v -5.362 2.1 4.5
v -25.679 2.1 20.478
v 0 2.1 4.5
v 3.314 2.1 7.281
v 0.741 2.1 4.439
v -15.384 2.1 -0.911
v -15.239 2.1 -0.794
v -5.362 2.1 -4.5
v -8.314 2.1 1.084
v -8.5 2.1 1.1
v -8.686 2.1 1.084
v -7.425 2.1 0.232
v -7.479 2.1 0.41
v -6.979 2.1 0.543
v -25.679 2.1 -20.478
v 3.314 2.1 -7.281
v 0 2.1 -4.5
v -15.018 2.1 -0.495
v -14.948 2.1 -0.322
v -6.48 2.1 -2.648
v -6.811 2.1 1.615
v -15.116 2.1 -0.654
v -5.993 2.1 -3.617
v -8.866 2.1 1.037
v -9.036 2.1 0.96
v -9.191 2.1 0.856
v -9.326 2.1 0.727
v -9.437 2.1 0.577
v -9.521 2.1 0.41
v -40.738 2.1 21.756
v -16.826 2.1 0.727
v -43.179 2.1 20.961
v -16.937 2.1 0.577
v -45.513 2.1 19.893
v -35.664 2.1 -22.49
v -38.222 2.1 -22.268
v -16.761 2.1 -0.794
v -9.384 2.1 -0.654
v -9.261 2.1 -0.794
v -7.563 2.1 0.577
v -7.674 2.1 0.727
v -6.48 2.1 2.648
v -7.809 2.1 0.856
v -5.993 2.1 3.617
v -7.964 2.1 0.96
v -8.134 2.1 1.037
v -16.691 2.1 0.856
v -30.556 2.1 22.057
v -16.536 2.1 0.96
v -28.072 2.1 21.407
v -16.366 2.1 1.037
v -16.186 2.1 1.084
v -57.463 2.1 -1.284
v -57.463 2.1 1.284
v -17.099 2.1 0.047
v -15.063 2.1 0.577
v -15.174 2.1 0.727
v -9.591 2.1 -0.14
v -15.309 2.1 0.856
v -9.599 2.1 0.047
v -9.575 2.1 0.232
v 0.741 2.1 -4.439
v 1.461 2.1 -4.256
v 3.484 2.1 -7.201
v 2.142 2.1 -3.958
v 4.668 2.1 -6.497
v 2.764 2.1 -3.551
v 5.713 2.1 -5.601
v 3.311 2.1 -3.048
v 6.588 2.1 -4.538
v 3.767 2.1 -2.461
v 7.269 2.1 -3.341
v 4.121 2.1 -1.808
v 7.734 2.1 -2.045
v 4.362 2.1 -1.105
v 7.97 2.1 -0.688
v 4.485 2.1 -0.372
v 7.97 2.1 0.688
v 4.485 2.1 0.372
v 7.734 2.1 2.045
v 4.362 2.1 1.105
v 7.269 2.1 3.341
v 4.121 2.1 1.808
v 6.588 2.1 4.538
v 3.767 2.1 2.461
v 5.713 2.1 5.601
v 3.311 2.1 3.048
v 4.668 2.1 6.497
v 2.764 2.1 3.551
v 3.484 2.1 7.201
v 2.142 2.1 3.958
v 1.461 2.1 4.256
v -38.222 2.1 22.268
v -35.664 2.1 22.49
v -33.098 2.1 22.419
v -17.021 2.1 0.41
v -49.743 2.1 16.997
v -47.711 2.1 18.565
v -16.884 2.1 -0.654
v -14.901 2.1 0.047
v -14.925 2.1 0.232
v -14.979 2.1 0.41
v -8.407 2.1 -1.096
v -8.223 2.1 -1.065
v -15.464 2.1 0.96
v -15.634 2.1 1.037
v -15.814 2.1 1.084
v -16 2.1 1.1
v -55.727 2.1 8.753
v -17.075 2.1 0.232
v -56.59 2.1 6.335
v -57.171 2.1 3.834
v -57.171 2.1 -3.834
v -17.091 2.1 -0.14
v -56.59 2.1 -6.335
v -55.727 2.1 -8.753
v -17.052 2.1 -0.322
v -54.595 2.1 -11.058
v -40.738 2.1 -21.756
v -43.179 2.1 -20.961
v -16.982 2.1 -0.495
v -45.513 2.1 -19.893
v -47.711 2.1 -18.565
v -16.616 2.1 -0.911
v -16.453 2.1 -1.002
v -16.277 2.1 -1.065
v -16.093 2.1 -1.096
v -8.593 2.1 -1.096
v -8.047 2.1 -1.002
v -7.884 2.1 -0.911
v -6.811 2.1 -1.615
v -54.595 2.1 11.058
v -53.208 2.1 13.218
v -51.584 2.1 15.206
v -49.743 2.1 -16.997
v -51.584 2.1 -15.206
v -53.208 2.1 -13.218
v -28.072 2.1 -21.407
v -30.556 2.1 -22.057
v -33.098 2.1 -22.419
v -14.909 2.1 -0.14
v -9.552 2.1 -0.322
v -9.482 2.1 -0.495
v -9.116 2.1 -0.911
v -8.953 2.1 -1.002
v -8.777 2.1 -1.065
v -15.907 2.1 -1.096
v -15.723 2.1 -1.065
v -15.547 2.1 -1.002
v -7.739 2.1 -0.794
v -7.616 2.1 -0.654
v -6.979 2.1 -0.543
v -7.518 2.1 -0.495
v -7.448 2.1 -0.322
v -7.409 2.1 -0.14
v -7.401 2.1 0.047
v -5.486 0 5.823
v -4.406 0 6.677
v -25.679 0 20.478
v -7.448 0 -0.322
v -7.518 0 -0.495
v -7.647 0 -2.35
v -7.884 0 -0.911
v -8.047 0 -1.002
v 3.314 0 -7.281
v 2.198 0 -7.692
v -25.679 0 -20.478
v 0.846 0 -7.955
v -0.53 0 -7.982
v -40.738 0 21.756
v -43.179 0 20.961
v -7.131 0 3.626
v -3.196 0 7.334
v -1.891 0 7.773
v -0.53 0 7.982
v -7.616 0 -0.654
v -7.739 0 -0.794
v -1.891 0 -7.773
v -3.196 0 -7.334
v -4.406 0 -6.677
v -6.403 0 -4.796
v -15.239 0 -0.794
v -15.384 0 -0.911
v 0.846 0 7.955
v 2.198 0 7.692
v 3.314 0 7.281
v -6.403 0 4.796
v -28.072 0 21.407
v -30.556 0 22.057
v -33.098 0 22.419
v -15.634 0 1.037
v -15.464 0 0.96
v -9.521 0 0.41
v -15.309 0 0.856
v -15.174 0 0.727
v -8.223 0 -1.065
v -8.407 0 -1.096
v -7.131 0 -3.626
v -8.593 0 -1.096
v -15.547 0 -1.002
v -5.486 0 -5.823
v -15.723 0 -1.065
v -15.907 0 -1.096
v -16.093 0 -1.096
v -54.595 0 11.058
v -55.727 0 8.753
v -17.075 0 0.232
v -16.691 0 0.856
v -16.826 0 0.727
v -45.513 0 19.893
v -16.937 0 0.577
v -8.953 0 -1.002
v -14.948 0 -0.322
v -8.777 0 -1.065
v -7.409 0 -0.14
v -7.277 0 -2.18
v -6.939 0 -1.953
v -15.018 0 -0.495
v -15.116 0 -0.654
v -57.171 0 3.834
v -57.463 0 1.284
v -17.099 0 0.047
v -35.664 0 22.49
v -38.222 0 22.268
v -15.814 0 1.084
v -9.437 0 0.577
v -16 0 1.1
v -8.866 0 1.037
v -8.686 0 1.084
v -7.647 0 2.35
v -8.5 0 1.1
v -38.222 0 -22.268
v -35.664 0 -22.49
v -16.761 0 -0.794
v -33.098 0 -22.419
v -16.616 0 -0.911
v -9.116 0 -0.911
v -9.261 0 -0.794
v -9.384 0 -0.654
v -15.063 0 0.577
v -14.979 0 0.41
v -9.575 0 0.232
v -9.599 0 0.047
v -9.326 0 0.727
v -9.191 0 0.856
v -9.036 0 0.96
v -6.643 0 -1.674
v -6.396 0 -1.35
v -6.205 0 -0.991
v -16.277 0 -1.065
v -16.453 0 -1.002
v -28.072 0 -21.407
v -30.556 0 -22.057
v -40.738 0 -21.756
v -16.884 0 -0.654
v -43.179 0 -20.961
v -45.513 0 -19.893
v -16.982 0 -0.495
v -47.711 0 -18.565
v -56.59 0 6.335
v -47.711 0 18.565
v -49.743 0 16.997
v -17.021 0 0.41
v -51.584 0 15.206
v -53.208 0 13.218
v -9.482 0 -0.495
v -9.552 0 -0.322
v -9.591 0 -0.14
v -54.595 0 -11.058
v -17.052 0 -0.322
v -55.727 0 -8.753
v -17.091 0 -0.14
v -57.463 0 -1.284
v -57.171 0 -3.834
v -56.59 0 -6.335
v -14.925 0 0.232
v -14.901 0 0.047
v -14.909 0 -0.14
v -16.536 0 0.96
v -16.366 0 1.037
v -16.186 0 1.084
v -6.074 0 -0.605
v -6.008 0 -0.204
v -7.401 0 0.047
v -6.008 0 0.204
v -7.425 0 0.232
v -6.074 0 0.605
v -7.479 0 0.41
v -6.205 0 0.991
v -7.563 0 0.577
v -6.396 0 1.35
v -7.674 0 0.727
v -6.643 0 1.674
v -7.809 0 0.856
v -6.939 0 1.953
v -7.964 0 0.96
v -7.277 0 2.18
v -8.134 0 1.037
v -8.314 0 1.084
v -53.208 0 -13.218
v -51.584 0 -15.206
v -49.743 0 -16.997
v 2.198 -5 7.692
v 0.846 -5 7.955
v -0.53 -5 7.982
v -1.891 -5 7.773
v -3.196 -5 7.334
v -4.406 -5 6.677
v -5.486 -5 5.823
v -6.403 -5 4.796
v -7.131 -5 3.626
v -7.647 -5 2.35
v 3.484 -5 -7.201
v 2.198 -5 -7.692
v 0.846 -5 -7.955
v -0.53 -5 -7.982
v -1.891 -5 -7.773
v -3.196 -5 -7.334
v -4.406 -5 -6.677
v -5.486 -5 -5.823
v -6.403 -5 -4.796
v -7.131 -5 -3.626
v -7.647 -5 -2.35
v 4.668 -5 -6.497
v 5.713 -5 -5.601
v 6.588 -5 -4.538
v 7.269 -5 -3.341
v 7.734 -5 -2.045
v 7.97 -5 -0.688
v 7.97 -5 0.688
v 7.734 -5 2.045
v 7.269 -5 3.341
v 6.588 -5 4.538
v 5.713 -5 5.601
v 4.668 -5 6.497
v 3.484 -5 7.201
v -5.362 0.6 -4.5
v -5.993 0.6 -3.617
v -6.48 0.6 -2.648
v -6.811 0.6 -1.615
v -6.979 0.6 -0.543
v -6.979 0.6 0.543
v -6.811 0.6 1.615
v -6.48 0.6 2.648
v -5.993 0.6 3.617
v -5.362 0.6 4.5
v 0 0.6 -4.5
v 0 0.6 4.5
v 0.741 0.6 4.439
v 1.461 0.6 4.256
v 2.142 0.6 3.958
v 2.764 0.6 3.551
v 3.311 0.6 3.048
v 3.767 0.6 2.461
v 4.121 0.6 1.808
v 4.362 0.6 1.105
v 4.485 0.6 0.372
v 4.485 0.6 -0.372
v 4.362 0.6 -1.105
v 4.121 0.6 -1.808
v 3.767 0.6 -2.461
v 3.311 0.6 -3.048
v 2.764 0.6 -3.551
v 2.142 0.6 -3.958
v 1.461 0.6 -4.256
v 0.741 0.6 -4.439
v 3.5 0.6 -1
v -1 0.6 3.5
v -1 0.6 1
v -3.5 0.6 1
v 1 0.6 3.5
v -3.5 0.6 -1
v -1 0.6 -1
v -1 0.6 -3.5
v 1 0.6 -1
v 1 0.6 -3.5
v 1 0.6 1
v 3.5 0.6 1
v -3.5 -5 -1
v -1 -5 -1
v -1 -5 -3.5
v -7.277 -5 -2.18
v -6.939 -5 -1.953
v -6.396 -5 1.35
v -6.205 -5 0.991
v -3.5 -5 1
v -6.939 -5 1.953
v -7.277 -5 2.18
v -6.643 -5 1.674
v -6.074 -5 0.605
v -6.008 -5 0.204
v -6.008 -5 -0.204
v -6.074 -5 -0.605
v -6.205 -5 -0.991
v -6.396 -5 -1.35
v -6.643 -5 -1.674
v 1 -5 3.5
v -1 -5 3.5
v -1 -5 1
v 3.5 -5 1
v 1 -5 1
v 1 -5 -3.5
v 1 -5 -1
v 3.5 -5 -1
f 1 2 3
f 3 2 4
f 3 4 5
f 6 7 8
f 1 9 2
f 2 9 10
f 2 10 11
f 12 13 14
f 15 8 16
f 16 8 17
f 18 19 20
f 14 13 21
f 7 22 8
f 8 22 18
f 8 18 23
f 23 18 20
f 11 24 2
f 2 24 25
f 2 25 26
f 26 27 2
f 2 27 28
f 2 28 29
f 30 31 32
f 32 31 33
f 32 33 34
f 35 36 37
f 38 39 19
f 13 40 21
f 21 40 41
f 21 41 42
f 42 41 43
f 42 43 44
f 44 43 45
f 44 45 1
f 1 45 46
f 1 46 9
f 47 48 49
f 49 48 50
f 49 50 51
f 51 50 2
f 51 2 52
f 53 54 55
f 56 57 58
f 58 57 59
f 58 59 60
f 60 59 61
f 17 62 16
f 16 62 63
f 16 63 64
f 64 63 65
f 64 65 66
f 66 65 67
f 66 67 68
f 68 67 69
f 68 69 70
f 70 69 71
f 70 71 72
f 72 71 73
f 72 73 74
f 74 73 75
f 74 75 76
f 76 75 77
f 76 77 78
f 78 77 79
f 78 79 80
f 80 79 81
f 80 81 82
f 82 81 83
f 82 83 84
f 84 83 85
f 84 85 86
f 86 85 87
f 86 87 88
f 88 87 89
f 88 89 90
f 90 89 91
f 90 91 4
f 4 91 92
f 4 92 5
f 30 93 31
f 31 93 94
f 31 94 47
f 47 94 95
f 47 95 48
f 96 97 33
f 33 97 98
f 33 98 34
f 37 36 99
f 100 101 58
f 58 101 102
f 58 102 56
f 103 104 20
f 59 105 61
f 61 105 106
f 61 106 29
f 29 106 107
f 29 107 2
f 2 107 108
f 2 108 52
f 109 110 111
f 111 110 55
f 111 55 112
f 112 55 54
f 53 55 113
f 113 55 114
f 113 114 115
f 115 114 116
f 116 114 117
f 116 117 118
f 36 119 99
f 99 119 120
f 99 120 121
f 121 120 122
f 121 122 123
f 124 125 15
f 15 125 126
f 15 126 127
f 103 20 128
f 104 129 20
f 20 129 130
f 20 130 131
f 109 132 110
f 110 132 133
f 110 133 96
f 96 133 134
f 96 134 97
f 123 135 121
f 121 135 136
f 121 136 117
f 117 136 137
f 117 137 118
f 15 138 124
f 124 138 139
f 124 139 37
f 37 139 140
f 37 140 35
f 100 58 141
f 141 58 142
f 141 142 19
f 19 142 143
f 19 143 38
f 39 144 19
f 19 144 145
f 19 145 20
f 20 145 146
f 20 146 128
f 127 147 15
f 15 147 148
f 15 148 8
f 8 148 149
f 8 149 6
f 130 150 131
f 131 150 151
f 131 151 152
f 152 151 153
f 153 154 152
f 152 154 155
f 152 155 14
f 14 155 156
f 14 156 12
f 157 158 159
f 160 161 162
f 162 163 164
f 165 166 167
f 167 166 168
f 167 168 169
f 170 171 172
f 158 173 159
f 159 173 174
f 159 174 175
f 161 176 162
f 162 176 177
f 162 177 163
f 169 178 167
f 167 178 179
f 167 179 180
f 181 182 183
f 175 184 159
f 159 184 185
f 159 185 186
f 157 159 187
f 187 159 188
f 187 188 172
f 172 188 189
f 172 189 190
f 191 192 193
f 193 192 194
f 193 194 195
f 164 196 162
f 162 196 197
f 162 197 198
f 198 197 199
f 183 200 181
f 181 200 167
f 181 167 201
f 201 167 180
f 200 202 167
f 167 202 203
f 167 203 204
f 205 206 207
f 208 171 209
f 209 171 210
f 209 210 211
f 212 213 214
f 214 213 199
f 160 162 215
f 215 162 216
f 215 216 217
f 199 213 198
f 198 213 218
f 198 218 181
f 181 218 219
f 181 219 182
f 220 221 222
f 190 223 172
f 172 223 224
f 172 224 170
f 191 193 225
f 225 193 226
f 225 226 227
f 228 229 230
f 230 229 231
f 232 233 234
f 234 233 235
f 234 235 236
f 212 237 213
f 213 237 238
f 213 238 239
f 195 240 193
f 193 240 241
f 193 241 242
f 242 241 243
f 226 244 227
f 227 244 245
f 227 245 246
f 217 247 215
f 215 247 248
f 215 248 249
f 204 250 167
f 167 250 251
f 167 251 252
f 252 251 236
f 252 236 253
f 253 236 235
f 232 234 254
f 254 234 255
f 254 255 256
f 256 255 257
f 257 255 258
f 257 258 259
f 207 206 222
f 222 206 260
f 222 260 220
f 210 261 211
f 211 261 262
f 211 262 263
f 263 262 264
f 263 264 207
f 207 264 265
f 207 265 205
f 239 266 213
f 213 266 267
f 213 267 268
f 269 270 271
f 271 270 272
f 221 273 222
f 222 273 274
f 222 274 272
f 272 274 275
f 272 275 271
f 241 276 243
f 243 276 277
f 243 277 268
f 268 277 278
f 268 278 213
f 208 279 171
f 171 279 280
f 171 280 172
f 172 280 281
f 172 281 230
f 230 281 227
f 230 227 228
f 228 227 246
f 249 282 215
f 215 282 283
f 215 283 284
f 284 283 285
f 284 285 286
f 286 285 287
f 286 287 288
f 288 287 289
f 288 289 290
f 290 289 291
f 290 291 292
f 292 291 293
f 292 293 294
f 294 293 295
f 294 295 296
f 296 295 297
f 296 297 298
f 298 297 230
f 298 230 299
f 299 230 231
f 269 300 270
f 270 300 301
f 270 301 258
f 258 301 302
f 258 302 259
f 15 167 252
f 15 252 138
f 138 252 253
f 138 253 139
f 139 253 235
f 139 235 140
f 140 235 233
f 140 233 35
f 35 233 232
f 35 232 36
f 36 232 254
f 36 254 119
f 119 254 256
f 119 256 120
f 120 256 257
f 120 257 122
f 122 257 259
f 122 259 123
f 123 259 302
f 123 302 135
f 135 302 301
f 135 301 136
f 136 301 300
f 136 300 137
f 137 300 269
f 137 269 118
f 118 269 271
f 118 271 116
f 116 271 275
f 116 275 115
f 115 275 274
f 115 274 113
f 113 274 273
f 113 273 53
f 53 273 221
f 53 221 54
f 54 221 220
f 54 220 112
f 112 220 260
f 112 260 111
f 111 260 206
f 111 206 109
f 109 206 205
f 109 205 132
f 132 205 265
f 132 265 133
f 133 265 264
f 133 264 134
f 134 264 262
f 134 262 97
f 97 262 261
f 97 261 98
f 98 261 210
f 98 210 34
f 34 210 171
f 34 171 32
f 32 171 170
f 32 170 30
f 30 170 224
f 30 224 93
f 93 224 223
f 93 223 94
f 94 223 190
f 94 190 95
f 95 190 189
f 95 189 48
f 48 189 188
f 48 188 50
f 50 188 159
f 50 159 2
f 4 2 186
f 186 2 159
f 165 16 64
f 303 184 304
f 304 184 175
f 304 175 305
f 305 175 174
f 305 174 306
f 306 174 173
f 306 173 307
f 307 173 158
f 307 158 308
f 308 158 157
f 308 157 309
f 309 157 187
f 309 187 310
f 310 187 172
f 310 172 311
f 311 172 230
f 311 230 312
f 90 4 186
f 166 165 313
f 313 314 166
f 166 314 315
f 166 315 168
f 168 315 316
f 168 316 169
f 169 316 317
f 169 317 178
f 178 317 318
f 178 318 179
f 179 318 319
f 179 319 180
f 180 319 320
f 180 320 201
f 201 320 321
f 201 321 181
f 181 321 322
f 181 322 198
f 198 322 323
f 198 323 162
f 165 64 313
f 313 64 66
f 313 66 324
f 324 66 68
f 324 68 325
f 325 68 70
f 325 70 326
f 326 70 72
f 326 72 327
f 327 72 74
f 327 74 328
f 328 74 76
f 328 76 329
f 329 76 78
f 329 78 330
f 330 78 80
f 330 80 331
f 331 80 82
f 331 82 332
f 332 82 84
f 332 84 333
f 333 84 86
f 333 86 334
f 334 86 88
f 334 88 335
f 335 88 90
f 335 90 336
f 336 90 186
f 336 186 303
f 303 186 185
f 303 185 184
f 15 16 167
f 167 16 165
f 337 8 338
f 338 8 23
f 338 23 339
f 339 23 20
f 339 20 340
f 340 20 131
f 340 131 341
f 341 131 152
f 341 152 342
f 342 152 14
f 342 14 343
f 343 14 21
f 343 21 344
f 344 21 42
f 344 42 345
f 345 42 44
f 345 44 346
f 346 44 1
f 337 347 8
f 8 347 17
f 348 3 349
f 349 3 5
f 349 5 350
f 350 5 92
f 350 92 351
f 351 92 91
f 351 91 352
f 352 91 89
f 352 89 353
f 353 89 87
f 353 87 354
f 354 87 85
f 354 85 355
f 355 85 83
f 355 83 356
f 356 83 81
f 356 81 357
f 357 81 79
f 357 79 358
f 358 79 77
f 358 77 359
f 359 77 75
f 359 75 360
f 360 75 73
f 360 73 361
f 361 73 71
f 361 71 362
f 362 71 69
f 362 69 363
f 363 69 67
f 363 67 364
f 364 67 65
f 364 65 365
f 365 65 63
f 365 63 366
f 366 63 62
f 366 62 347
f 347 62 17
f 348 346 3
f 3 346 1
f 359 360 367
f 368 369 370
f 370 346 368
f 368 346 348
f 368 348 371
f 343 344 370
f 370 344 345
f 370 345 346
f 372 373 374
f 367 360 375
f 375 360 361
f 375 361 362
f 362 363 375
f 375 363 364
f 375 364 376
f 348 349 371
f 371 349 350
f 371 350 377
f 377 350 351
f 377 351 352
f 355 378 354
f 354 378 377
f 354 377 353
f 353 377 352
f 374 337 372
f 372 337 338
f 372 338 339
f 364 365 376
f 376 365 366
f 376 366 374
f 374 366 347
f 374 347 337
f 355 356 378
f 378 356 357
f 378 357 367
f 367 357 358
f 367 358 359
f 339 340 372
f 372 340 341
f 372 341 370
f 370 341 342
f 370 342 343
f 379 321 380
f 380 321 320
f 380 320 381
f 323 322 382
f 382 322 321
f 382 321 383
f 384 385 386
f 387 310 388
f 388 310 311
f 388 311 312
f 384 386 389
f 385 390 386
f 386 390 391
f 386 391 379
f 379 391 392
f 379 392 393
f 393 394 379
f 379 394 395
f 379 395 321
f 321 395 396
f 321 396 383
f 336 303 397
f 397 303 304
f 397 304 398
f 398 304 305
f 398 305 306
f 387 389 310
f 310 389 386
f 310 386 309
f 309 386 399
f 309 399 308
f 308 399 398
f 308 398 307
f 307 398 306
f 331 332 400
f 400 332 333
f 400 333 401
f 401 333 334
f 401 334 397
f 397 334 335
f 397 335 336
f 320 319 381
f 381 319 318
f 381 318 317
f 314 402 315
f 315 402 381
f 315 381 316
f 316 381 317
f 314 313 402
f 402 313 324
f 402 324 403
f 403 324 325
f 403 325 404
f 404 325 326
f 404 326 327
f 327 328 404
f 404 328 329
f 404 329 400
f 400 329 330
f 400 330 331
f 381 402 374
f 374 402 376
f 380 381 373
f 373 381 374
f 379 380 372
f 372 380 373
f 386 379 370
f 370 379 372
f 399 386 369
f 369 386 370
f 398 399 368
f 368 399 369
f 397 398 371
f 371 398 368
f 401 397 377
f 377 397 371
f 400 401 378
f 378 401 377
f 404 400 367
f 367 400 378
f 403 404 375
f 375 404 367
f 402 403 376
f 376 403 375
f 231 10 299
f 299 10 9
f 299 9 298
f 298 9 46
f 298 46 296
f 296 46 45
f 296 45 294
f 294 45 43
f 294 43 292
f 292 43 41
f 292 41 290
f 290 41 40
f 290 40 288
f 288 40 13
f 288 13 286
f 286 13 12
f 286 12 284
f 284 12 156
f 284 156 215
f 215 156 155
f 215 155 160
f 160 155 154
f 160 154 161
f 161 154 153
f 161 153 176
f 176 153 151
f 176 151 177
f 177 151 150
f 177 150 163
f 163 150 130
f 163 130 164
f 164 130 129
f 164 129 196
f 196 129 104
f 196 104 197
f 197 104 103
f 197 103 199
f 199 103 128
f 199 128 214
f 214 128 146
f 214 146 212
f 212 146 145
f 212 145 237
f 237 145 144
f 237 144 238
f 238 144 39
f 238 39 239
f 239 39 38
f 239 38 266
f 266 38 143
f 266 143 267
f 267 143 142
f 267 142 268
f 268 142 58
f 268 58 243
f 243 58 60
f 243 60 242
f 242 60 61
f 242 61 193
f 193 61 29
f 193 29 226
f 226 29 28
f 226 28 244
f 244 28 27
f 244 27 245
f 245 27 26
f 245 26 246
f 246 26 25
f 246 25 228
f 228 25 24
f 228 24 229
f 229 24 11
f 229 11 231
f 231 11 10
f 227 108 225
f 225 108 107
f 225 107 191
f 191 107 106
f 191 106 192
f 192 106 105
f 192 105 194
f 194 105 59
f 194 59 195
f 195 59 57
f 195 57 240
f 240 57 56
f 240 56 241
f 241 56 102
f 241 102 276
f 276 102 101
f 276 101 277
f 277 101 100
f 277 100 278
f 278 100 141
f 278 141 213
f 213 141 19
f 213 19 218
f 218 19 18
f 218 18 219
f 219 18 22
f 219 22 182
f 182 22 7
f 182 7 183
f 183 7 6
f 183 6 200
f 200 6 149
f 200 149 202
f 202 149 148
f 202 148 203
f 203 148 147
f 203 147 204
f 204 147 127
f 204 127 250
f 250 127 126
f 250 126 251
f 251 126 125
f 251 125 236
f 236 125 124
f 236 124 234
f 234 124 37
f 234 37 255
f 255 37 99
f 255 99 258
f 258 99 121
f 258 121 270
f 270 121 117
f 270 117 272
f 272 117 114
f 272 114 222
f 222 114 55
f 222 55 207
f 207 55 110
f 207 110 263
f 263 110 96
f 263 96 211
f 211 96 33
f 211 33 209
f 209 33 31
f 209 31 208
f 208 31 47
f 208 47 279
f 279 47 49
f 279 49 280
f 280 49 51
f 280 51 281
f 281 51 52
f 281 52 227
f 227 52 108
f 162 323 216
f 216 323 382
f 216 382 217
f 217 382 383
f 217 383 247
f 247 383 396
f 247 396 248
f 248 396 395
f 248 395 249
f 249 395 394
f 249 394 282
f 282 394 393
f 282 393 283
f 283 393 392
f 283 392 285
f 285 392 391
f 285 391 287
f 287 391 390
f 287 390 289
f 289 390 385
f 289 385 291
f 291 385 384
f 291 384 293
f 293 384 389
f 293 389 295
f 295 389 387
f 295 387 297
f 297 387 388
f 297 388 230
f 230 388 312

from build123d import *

# Parameters (mm, degrees)
SKETCH_1_R          = 1
EXTRUDE_1_DEPTH     = 2.1
CUT_EXTRUDE_2_DEPTH = 1.5
EXTRUDE_START       = 5
SKETCH_4_R          = 8
EXTRUDE_2_DEPTH     = 5
CUT_EXTRUDE_3_DEPTH = 63.152312909
SKETCH_2_R          = 1.1
CUT_EXTRUDE_1_DEPTH = 63.152312909
SKETCH_6_R          = 2.5
CUT_EXTRUDE_4_DEPTH = 5


with BuildPart() as part:
    # 草图1 → 凸台-拉伸1 (new body)
    with BuildSketch(Plane(origin=(0, 0, 0), x_dir=(1, 0, 0), z_dir=(0, 1, 0))):
        with BuildLine():
            Line((-25.678571429, 20.478304847), (3.314285714, 7.281175057))
            ThreePointArc((3.314285714, 7.281175057), (8, 0), (3.314285714, -7.281175057))
            Line((3.314285714, -7.281175057), (-25.678571429, -20.478304847))
            ThreePointArc((-25.678571429, -20.478304847), (-57.5, 0), (-25.678571429, 20.478304847))
        make_face()
        with Locations(Location((0, 0, 0), (0, 0, 270))):
            Circle(SKETCH_1_R, mode=Mode.SUBTRACT)
    extrude(amount=EXTRUDE_1_DEPTH)

    # 草图3 → 切除-拉伸2 (cut)
    with BuildSketch(Plane(origin=(0, 2.1, 0), x_dir=(1, 0, 0), z_dir=(0, 1, 0))):
        with BuildLine():
            Line((-5.361902647, 4.5), (0, 4.5))
            ThreePointArc((0, 4.5), (4.5, 0), (0, -4.5))
            Line((0, -4.5), (-5.361902647, -4.5))
            ThreePointArc((-5.361902647, -4.5), (-7, 0), (-5.361902647, 4.5))
        make_face()
    extrude(amount=-CUT_EXTRUDE_2_DEPTH, mode=Mode.SUBTRACT)

    # 草图4 → 凸台-拉伸2 (add)
    with BuildSketch(Plane.XZ.offset(EXTRUDE_START)):
        with Locations(Location((0, 0, 0), (0, 0, 270))):
            Circle(SKETCH_4_R)
    extrude(amount=-EXTRUDE_2_DEPTH)

    # 草图5 → 切除-拉伸3 (cut, through all)
    with BuildSketch(Plane.XZ.offset(5)):
        Polygon((1, -1), (1, -3.5), (-1, -3.5), (-1, -1), (-3.5, -1), (-3.5, 1), (-1, 1), (-1, 3.5), (1, 3.5), (1, 1), (3.5, 1), (3.5, -1), align=None)
    extrude(amount=-CUT_EXTRUDE_3_DEPTH, mode=Mode.SUBTRACT)

    # 草图2 → 切除-拉伸1 (cut, through all)
    with BuildSketch(Plane(origin=(0, 2.1, 0), x_dir=(1, 0, 0), z_dir=(0, 1, 0))):
        with Locations(Location((-8.5, 0, 0), (0, 0, 270))):
            Circle(SKETCH_2_R)
        with Locations(Location((-16, 0, 0), (0, 0, 270))):
            Circle(SKETCH_2_R)
    extrude(amount=-CUT_EXTRUDE_1_DEPTH, mode=Mode.SUBTRACT)

    # 草图6 → 切除-拉伸4 (cut)
    with BuildSketch(Plane.XZ.offset(5)):
        with Locations((-8.5, 0)):
            Circle(SKETCH_6_R)
    extrude(amount=-CUT_EXTRUDE_4_DEPTH, mode=Mode.SUBTRACT)


solid = part.part
